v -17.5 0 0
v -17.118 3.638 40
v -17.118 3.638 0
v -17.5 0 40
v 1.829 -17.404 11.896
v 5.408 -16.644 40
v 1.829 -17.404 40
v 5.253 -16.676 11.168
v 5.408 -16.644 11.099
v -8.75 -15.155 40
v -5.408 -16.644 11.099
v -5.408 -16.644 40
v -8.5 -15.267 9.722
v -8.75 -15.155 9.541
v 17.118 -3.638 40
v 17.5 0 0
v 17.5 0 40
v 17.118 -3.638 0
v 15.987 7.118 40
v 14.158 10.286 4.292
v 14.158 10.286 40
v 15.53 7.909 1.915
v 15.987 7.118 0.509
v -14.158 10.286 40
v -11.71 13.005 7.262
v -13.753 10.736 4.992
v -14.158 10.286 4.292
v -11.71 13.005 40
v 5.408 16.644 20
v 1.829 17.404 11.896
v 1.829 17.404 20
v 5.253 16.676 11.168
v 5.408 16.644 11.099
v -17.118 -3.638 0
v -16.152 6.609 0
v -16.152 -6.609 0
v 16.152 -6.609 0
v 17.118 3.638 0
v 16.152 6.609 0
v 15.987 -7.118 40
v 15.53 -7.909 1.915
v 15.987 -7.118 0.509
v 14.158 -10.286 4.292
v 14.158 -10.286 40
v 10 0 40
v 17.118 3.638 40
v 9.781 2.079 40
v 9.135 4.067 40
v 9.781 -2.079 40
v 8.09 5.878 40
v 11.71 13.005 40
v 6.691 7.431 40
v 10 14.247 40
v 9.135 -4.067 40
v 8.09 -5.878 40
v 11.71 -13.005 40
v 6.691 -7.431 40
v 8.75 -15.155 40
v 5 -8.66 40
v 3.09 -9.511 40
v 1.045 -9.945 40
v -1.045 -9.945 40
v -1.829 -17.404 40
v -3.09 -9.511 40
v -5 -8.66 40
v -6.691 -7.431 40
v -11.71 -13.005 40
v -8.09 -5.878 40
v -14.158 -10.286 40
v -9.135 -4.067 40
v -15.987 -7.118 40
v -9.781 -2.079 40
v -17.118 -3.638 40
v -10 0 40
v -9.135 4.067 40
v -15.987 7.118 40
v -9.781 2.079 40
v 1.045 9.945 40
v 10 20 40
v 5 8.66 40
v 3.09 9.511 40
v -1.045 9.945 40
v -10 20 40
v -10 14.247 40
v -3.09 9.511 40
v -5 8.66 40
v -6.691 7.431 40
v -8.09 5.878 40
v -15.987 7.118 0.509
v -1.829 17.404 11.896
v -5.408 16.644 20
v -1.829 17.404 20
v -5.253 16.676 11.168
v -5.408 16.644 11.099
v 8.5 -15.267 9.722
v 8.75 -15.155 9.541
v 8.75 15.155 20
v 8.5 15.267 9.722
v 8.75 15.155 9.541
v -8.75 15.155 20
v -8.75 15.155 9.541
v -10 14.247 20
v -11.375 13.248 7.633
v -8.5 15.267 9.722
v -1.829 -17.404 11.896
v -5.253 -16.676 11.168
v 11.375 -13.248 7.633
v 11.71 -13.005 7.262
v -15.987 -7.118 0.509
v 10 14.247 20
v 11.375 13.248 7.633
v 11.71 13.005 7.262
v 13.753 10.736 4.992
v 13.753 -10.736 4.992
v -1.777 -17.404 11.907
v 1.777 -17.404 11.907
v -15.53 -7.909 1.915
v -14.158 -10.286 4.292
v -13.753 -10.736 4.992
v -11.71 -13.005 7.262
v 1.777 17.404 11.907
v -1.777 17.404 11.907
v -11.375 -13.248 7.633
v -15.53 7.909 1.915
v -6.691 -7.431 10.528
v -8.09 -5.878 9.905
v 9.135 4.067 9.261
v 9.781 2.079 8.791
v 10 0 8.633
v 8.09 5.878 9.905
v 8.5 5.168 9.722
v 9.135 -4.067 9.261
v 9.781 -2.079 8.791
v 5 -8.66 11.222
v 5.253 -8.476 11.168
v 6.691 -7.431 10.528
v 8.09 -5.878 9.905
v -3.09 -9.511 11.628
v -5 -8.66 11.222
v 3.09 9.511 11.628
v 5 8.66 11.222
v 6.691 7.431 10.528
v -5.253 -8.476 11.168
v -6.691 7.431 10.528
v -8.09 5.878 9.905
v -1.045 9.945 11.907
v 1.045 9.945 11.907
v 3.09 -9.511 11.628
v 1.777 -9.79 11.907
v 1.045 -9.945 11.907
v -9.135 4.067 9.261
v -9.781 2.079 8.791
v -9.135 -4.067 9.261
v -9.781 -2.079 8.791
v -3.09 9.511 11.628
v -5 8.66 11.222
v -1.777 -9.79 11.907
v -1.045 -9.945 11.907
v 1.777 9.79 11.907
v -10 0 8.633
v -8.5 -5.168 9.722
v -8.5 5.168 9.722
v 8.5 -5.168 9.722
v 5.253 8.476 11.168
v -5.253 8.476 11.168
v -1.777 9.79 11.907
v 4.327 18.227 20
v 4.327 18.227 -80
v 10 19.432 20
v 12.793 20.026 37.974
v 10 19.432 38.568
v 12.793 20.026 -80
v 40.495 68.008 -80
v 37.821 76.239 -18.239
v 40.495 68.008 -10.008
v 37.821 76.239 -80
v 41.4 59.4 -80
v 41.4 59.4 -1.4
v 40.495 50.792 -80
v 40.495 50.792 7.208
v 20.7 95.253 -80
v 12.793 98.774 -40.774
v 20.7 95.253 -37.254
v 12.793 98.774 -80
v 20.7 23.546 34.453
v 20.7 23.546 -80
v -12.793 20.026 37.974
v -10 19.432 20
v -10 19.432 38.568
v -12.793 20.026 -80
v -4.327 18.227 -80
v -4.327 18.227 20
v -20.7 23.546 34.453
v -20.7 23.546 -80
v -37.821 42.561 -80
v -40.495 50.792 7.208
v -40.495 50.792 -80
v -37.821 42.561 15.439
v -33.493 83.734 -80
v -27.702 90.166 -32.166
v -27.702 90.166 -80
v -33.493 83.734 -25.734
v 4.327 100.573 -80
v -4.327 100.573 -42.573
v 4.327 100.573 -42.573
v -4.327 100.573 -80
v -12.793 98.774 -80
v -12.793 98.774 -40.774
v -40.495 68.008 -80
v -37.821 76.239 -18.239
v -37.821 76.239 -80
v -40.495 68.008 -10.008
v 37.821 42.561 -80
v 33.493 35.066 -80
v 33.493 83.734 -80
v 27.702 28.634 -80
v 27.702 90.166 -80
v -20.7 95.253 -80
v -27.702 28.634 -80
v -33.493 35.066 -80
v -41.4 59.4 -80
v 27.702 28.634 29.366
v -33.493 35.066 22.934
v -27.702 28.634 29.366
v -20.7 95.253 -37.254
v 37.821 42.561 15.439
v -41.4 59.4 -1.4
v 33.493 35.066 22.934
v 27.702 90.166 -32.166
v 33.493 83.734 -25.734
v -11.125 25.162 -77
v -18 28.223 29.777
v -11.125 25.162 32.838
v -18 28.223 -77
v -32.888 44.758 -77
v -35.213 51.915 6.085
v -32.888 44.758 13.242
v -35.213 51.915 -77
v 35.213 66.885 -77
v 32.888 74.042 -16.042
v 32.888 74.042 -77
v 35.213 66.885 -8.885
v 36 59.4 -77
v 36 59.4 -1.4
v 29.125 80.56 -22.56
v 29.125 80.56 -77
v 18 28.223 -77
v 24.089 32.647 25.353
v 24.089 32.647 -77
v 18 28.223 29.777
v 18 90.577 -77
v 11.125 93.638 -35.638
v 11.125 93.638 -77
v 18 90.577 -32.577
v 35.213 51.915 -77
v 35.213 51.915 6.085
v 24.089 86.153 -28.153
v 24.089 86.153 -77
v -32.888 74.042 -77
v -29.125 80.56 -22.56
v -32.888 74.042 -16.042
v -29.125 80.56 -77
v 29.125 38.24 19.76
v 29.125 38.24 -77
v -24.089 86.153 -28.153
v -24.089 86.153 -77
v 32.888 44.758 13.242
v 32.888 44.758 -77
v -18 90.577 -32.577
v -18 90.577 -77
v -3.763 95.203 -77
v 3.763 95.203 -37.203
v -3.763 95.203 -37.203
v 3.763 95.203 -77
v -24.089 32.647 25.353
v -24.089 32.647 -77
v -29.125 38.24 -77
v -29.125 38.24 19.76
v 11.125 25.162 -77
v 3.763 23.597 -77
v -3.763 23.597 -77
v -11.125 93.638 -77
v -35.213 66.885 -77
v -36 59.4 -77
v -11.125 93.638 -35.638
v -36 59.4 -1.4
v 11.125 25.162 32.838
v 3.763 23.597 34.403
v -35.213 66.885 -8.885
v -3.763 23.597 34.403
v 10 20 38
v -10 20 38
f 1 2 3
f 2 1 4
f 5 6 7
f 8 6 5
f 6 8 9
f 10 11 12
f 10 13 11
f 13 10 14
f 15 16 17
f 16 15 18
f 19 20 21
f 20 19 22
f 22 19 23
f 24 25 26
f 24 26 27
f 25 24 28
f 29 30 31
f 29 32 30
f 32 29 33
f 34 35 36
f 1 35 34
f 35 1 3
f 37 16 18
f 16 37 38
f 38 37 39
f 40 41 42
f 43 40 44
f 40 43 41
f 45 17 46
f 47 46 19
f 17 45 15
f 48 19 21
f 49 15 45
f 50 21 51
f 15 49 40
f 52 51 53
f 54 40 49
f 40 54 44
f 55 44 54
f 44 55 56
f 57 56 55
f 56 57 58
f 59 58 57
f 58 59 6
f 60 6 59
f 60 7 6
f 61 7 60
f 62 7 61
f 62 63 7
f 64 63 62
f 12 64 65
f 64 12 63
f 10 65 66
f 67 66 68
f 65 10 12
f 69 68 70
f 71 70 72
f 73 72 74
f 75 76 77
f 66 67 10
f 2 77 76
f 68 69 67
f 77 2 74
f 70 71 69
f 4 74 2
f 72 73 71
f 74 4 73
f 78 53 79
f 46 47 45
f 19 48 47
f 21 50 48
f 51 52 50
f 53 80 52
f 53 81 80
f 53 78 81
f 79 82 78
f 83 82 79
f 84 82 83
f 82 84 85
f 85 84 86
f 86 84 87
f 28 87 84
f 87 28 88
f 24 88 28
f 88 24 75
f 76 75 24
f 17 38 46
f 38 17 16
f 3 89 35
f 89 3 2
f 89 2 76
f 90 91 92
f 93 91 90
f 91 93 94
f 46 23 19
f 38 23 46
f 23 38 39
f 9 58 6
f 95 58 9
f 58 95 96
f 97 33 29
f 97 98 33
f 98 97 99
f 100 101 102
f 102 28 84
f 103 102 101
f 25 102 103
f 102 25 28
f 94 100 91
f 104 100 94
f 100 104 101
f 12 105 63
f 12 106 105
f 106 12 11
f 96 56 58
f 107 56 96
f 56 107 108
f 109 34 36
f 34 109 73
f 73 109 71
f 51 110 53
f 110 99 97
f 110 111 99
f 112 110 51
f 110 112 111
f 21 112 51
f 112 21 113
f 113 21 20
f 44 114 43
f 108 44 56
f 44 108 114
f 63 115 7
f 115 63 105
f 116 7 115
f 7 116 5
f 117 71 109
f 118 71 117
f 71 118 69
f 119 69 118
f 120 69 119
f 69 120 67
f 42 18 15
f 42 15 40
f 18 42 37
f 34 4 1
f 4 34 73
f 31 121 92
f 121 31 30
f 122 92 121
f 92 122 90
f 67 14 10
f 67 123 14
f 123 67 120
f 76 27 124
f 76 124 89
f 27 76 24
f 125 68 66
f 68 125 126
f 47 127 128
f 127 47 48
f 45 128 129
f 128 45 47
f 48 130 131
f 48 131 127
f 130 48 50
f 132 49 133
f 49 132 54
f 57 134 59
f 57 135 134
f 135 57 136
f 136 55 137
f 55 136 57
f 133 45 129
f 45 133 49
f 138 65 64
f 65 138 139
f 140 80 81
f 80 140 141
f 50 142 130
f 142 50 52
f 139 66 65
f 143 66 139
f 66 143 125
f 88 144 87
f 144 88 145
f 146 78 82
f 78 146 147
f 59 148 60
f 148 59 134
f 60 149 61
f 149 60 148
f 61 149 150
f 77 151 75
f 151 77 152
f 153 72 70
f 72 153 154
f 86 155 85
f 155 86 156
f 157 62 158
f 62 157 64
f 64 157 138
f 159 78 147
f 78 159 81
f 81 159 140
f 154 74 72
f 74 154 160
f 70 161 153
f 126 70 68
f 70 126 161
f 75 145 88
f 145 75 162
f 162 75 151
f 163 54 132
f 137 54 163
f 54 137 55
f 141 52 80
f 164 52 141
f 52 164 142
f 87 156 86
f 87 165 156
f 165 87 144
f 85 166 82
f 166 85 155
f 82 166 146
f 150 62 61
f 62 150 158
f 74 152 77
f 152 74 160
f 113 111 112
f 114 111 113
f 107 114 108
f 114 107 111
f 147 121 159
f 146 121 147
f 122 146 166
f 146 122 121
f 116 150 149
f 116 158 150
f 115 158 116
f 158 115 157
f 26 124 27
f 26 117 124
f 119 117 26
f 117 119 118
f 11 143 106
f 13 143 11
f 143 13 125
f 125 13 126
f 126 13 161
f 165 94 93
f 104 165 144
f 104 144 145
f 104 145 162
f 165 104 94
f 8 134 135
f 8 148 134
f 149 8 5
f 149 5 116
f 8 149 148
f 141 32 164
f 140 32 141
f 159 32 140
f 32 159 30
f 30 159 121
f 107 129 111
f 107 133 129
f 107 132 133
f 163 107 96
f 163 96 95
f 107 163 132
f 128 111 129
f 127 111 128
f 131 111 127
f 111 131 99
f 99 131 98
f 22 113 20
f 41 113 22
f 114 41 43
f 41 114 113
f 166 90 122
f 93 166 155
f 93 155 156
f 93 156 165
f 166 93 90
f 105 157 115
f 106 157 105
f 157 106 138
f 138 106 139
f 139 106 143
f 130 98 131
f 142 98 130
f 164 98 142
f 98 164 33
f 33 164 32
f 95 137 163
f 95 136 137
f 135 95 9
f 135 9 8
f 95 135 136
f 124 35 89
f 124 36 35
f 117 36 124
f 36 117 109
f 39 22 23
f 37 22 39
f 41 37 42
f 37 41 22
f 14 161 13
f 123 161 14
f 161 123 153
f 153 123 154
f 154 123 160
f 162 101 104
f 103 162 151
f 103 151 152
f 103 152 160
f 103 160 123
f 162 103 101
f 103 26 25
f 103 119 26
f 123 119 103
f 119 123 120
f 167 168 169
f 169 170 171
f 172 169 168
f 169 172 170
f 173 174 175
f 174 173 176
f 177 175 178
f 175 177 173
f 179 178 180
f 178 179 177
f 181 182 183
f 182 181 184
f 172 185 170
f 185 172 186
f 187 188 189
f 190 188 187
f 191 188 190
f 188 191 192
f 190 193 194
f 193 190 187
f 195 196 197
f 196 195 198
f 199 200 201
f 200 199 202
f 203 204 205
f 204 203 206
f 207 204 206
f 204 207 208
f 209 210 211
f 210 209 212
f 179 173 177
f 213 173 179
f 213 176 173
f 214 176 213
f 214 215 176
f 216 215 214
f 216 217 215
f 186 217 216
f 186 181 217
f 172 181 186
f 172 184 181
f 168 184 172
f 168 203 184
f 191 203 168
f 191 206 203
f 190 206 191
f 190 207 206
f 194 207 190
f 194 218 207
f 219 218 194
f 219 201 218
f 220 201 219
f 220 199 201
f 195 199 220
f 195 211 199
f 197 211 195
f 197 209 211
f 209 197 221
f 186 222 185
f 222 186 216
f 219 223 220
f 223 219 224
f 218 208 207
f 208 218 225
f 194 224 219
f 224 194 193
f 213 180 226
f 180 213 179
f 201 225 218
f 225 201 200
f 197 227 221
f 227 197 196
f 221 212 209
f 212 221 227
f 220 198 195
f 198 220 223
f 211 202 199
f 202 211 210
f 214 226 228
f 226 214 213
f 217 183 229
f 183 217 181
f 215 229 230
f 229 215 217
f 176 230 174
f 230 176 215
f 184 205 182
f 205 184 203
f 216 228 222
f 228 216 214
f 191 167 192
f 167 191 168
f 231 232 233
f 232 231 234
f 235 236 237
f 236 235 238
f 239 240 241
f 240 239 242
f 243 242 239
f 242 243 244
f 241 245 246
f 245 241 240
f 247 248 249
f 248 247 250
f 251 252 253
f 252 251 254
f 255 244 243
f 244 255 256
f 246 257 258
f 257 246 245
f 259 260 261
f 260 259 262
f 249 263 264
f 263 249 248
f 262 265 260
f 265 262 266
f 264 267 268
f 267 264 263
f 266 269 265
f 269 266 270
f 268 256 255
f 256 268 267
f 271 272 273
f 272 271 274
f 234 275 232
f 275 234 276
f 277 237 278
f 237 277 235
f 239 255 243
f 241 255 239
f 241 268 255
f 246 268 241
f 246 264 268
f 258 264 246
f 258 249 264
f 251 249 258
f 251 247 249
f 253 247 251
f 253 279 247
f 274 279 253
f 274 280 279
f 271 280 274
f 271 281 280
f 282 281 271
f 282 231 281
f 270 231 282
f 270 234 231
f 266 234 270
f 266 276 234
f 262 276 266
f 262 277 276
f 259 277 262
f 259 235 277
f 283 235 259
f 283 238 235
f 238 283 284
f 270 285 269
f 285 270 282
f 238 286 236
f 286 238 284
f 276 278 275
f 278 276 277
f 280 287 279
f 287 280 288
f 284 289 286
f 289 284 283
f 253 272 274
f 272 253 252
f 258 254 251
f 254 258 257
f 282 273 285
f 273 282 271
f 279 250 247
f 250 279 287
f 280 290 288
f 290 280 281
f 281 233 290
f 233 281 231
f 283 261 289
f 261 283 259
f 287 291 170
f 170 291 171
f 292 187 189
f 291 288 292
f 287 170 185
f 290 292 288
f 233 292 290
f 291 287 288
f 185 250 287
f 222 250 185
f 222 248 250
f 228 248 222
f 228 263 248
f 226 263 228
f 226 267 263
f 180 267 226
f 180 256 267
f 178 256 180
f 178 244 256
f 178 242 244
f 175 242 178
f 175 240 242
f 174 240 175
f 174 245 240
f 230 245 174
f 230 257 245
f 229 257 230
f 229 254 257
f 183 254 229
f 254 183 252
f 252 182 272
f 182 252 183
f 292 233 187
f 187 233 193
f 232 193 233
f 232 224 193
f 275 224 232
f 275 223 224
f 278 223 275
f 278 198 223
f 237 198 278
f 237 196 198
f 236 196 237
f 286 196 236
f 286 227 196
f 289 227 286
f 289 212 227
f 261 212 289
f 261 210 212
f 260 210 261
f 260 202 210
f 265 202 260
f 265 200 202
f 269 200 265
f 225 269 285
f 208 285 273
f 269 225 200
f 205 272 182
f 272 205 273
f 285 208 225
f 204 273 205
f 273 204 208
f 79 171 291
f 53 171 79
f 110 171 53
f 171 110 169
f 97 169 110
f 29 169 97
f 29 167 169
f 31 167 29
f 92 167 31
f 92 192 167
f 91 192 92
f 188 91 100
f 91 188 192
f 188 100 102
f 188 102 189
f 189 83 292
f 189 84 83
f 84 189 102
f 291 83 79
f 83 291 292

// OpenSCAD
rod_diameter = 20;
saddle_diameter = 34;

soap_diameter = 72;

module holder() {
    difference() {
        cylinder( d = 1.75*rod_diameter, h = 2*rod_diameter);
        translate([0, 0, -1])
            cylinder( d = rod_diameter, h = 3*rod_diameter);
        translate([0, -1.5*rod_diameter, -0.25*rod_diameter])
            rotate([-90, 0, 0])
                cylinder( d = saddle_diameter , h = 3*rod_diameter);
    }
}

module connection() {
    translate([-0.5*rod_diameter, 0.5*rod_diameter, rod_diameter])
        cube([rod_diameter, 0.5*rod_diameter, rod_diameter]);
}

module soap() {
    difference() {
    translate([0, (0.5+0.075)*soap_diameter+0.9*rod_diameter, -4*rod_diameter])
        difference() {
            cylinder( d = 1.15*soap_diameter, h = 6*rod_diameter);
            translate([0, 0, 0.15*rod_diameter]) cylinder( d = soap_diameter, h = 6*rod_diameter);
        }
        
            translate([-0.5*1.15*soap_diameter, 0.9*rod_diameter, 2*rod_diameter]) rotate([-45, 0, 0]) cube([1.15*soap_diameter, 30*soap_diameter, 1.15*soap_diameter]);

    }
}

color([1, 0, 0]) holder();
color([0, 1, 0]) connection();
color([0, 0, 1]) soap();
